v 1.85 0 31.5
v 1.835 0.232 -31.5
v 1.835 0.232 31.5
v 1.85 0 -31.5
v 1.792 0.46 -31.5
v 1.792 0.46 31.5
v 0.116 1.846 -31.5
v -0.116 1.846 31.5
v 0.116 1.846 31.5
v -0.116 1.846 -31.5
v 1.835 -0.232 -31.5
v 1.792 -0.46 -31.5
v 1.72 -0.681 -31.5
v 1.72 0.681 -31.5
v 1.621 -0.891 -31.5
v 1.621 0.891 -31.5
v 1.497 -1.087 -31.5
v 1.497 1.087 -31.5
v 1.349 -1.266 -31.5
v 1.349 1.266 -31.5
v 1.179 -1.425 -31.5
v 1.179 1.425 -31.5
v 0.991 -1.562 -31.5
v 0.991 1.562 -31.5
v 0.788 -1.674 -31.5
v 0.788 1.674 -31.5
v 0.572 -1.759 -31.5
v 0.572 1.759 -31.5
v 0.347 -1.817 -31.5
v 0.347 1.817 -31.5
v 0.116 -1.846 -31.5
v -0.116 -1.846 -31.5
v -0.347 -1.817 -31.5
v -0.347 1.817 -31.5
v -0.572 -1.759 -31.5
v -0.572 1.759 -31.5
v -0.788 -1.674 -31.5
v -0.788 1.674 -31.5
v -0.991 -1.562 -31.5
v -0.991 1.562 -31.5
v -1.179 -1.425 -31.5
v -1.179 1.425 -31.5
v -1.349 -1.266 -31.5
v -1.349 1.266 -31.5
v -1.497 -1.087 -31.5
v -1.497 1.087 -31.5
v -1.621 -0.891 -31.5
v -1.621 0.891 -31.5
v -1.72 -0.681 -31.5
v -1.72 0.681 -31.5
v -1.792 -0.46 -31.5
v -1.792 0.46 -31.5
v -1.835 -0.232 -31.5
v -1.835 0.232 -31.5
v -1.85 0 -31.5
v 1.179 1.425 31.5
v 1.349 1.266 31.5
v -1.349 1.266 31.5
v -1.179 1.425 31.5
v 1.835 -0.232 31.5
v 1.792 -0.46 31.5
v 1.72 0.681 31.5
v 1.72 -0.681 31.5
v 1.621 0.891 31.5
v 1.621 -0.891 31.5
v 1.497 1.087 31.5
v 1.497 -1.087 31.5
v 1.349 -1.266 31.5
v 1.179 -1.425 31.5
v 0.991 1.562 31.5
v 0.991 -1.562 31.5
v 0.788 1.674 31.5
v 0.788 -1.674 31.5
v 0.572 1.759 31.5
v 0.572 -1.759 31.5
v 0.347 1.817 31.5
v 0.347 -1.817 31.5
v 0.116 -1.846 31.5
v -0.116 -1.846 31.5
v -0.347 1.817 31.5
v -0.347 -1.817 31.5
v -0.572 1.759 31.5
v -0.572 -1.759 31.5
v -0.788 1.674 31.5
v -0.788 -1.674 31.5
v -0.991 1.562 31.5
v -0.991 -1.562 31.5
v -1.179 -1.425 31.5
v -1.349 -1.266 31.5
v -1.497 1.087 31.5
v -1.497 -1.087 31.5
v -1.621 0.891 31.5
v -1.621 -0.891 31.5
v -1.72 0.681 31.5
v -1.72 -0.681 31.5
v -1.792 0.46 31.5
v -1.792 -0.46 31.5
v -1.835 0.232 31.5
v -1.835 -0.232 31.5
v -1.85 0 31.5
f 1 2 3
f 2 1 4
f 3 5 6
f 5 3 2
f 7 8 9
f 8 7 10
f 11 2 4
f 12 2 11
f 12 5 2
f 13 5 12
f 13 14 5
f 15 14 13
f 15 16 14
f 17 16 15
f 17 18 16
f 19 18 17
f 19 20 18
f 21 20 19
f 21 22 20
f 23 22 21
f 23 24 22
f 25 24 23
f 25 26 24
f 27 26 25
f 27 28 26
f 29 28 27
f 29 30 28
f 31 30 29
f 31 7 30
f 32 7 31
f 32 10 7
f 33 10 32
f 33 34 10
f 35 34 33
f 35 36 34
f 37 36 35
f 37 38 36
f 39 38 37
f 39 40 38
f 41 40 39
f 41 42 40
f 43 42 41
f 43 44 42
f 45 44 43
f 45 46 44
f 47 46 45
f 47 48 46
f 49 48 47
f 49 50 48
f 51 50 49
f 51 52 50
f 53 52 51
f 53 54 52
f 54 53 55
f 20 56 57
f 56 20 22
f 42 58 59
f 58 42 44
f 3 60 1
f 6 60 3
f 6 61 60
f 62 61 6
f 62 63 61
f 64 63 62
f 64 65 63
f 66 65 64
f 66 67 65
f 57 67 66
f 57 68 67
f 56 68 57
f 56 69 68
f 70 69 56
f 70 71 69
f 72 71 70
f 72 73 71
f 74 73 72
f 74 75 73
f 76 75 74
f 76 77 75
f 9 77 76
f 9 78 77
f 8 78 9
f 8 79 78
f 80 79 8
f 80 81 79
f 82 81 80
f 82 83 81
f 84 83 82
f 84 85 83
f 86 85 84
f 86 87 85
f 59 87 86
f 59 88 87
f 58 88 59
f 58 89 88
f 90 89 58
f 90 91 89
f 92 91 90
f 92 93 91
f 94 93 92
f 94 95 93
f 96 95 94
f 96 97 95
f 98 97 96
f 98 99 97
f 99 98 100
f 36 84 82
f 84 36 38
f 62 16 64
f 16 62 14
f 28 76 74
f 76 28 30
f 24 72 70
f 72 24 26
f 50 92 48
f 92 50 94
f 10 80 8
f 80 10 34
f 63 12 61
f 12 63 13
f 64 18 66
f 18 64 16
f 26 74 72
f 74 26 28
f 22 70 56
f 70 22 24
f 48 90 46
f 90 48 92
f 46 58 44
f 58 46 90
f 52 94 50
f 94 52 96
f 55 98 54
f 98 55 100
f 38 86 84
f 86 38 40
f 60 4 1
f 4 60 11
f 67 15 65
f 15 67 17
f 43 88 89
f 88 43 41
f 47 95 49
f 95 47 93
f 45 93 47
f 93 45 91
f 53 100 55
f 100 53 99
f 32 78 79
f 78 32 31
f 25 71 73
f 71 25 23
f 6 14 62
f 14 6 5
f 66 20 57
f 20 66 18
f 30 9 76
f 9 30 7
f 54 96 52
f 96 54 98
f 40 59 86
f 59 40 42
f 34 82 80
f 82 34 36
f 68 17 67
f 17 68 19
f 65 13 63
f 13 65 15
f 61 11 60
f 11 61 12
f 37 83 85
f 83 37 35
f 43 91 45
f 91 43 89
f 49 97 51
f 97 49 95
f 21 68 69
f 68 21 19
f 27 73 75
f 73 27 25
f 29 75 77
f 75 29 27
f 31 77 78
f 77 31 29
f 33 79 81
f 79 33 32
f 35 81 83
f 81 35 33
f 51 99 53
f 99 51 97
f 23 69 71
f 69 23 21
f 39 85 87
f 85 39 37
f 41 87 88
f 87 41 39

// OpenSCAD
$fn = 50;


difference() {
	union() {
		translate(v = [0, 0, -31.5000000000]) {
			cylinder(h = 63, r = 1.8500000000);
		}
	}
	union() {
		translate(v = [0, 0, -100.0000000000]) {
			cylinder(h = 200, r = 0);
		}
	}
}
